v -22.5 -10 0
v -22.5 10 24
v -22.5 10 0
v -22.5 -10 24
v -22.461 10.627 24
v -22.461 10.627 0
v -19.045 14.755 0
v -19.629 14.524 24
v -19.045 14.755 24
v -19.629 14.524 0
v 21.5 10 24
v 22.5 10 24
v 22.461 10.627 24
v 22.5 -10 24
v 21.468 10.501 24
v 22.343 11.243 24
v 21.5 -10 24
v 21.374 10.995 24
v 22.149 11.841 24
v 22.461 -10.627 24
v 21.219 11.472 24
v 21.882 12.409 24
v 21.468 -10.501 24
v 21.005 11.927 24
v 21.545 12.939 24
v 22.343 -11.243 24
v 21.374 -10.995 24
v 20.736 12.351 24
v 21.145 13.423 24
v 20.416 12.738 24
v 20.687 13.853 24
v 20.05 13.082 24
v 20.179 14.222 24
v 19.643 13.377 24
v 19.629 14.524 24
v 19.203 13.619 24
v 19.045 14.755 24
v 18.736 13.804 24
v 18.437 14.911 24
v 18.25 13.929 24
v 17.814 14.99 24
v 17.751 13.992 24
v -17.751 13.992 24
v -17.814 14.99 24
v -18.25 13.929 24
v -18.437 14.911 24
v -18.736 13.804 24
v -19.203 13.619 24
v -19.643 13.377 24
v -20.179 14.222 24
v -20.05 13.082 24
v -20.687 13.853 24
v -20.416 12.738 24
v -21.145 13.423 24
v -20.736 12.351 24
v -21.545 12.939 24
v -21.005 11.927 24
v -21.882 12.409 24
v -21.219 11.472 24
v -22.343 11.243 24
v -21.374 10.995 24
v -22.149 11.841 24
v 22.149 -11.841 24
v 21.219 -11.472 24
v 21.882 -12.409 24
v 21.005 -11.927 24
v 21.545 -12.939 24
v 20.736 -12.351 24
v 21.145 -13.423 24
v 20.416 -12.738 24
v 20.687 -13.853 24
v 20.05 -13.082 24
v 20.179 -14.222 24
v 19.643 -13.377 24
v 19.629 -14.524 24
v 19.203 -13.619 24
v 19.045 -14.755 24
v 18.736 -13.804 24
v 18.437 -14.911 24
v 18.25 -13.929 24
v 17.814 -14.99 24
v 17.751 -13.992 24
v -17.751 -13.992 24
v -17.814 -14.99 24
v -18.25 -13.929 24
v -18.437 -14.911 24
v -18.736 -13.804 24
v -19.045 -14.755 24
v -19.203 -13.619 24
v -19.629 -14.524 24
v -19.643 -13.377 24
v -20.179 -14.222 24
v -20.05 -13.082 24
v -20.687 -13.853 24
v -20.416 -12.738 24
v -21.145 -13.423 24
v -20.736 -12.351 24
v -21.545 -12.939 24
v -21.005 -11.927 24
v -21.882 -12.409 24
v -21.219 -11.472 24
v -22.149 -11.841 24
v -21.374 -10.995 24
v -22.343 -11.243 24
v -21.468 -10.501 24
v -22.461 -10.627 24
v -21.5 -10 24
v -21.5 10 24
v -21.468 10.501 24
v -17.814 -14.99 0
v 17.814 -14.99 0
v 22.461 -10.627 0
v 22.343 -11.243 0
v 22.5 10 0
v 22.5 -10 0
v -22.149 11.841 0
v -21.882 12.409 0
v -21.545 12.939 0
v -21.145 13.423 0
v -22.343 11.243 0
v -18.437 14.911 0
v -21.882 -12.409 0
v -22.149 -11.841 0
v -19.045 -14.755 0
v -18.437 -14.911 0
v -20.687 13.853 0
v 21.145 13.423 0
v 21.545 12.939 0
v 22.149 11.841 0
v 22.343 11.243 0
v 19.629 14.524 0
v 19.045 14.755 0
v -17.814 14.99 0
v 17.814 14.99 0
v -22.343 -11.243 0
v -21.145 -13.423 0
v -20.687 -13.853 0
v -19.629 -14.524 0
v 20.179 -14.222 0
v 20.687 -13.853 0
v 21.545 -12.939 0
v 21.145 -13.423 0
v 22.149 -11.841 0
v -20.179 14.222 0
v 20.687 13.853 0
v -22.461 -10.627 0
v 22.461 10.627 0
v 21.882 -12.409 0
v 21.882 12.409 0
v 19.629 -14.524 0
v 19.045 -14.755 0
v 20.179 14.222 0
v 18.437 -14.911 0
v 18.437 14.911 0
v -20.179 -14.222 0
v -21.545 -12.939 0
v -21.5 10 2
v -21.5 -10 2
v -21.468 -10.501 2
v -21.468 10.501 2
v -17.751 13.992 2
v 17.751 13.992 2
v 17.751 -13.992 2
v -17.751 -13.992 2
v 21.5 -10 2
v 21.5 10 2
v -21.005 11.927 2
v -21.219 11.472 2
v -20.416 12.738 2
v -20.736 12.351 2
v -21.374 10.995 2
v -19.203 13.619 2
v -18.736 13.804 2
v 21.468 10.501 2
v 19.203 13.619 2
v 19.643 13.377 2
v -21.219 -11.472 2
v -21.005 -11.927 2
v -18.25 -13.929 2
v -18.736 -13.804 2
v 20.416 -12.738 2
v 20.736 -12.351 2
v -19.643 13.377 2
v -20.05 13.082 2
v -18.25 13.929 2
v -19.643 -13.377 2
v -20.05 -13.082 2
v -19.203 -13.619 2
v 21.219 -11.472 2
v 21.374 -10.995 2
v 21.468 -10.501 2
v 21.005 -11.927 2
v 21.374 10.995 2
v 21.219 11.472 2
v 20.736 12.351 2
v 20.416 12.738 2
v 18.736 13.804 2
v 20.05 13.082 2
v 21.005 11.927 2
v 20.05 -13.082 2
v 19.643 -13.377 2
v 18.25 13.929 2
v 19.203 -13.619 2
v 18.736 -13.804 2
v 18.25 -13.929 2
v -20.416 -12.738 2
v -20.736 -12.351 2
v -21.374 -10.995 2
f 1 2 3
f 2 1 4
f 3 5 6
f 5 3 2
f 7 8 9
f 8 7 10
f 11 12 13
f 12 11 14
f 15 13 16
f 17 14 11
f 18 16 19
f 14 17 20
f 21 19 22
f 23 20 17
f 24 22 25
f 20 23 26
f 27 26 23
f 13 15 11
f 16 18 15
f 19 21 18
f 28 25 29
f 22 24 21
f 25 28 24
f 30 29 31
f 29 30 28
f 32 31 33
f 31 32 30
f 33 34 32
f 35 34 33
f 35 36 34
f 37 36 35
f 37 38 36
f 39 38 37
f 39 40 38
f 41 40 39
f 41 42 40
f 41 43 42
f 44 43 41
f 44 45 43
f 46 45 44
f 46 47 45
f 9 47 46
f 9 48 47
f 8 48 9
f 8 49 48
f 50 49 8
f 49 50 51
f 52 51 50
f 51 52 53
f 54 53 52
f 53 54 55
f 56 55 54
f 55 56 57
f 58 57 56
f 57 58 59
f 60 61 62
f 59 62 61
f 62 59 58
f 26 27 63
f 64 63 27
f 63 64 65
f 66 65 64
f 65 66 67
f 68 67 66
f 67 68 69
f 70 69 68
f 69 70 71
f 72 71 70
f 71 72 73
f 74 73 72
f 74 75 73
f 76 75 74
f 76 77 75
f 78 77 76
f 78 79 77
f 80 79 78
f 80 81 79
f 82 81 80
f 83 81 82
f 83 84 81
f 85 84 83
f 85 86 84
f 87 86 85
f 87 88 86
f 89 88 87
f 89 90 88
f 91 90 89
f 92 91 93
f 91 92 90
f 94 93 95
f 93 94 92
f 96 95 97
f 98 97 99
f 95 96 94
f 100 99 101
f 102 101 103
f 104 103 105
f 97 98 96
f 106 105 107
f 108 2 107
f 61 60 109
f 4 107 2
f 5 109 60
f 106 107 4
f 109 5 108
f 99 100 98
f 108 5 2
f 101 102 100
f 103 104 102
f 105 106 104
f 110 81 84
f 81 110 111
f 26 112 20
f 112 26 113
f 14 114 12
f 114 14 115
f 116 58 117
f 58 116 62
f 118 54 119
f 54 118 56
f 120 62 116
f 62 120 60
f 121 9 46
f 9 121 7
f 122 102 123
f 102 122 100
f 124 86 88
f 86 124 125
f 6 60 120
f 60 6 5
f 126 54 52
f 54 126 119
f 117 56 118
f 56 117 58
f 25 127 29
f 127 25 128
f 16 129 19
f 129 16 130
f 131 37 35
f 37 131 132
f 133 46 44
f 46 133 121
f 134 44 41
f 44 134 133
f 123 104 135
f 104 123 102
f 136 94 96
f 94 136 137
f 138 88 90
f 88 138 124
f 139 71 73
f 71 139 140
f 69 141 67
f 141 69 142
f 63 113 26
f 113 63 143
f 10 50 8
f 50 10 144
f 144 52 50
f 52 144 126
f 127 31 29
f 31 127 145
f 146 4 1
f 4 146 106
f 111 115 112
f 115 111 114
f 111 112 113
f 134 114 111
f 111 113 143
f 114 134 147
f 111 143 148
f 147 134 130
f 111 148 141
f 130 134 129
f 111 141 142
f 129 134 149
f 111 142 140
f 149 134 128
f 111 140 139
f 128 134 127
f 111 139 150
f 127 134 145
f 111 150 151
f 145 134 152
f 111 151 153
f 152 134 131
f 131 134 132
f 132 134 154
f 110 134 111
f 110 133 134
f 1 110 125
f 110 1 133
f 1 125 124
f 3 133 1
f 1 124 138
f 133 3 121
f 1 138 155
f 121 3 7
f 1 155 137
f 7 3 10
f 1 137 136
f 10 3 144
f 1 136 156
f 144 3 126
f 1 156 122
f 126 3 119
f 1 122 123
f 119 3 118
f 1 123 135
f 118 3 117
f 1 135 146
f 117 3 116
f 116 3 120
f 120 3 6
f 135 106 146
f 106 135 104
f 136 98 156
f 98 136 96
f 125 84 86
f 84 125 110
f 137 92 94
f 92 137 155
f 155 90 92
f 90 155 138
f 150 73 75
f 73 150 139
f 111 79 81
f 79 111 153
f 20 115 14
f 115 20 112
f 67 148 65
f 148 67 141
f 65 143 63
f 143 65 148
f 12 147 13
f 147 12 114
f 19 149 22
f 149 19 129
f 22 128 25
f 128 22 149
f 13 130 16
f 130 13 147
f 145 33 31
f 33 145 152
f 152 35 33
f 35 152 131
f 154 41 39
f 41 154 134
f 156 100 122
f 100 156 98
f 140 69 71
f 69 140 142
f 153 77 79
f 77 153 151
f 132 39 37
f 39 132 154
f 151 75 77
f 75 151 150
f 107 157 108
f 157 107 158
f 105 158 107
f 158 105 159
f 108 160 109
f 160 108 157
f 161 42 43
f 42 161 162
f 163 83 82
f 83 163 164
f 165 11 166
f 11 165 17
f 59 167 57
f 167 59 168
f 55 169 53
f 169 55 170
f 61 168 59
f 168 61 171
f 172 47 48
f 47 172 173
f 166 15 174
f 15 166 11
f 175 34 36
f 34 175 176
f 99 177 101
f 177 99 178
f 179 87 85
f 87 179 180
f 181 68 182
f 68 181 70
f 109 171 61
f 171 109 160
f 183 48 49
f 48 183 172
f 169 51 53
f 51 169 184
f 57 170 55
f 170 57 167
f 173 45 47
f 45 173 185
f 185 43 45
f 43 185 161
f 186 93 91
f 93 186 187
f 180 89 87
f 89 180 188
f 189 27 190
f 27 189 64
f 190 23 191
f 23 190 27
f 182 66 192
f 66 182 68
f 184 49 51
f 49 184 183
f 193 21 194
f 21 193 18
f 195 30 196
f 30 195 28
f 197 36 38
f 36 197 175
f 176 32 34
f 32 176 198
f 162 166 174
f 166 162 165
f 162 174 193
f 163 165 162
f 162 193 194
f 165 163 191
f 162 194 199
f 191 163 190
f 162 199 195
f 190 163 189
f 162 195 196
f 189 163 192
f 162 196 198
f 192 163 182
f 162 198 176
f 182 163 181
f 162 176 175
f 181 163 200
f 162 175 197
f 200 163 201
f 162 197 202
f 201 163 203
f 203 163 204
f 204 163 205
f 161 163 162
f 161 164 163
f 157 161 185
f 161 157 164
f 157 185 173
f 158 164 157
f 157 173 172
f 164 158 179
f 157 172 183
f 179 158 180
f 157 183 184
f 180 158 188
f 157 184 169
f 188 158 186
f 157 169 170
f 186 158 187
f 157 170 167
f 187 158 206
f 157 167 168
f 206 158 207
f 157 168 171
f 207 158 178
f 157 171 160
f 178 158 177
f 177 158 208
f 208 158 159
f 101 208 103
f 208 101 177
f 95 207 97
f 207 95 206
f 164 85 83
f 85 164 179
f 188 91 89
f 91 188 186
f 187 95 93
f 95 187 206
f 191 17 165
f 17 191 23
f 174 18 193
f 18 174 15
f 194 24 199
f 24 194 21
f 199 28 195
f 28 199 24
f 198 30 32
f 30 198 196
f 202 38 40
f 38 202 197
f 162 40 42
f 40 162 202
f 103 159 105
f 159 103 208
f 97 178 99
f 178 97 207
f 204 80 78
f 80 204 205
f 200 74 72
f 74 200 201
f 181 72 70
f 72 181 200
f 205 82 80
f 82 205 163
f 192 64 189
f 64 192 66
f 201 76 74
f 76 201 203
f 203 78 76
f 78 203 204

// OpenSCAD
$fn = 50;


difference() {
	union() {
		hull() {
			translate(v = [-17.5000000000, 10.0000000000, 0]) {
				cylinder(h = 24, r = 5);
			}
			translate(v = [17.5000000000, 10.0000000000, 0]) {
				cylinder(h = 24, r = 5);
			}
			translate(v = [-17.5000000000, -10.0000000000, 0]) {
				cylinder(h = 24, r = 5);
			}
			translate(v = [17.5000000000, -10.0000000000, 0]) {
				cylinder(h = 24, r = 5);
			}
		}
	}
	union() {
		translate(v = [0, 0, 2]) {
			hull() {
				translate(v = [-17.5000000000, 10.0000000000, 0]) {
					cylinder(h = 22, r = 4);
				}
				translate(v = [17.5000000000, 10.0000000000, 0]) {
					cylinder(h = 22, r = 4);
				}
				translate(v = [-17.5000000000, -10.0000000000, 0]) {
					cylinder(h = 22, r = 4);
				}
				translate(v = [17.5000000000, -10.0000000000, 0]) {
					cylinder(h = 22, r = 4);
				}
			}
		}
	}
}
